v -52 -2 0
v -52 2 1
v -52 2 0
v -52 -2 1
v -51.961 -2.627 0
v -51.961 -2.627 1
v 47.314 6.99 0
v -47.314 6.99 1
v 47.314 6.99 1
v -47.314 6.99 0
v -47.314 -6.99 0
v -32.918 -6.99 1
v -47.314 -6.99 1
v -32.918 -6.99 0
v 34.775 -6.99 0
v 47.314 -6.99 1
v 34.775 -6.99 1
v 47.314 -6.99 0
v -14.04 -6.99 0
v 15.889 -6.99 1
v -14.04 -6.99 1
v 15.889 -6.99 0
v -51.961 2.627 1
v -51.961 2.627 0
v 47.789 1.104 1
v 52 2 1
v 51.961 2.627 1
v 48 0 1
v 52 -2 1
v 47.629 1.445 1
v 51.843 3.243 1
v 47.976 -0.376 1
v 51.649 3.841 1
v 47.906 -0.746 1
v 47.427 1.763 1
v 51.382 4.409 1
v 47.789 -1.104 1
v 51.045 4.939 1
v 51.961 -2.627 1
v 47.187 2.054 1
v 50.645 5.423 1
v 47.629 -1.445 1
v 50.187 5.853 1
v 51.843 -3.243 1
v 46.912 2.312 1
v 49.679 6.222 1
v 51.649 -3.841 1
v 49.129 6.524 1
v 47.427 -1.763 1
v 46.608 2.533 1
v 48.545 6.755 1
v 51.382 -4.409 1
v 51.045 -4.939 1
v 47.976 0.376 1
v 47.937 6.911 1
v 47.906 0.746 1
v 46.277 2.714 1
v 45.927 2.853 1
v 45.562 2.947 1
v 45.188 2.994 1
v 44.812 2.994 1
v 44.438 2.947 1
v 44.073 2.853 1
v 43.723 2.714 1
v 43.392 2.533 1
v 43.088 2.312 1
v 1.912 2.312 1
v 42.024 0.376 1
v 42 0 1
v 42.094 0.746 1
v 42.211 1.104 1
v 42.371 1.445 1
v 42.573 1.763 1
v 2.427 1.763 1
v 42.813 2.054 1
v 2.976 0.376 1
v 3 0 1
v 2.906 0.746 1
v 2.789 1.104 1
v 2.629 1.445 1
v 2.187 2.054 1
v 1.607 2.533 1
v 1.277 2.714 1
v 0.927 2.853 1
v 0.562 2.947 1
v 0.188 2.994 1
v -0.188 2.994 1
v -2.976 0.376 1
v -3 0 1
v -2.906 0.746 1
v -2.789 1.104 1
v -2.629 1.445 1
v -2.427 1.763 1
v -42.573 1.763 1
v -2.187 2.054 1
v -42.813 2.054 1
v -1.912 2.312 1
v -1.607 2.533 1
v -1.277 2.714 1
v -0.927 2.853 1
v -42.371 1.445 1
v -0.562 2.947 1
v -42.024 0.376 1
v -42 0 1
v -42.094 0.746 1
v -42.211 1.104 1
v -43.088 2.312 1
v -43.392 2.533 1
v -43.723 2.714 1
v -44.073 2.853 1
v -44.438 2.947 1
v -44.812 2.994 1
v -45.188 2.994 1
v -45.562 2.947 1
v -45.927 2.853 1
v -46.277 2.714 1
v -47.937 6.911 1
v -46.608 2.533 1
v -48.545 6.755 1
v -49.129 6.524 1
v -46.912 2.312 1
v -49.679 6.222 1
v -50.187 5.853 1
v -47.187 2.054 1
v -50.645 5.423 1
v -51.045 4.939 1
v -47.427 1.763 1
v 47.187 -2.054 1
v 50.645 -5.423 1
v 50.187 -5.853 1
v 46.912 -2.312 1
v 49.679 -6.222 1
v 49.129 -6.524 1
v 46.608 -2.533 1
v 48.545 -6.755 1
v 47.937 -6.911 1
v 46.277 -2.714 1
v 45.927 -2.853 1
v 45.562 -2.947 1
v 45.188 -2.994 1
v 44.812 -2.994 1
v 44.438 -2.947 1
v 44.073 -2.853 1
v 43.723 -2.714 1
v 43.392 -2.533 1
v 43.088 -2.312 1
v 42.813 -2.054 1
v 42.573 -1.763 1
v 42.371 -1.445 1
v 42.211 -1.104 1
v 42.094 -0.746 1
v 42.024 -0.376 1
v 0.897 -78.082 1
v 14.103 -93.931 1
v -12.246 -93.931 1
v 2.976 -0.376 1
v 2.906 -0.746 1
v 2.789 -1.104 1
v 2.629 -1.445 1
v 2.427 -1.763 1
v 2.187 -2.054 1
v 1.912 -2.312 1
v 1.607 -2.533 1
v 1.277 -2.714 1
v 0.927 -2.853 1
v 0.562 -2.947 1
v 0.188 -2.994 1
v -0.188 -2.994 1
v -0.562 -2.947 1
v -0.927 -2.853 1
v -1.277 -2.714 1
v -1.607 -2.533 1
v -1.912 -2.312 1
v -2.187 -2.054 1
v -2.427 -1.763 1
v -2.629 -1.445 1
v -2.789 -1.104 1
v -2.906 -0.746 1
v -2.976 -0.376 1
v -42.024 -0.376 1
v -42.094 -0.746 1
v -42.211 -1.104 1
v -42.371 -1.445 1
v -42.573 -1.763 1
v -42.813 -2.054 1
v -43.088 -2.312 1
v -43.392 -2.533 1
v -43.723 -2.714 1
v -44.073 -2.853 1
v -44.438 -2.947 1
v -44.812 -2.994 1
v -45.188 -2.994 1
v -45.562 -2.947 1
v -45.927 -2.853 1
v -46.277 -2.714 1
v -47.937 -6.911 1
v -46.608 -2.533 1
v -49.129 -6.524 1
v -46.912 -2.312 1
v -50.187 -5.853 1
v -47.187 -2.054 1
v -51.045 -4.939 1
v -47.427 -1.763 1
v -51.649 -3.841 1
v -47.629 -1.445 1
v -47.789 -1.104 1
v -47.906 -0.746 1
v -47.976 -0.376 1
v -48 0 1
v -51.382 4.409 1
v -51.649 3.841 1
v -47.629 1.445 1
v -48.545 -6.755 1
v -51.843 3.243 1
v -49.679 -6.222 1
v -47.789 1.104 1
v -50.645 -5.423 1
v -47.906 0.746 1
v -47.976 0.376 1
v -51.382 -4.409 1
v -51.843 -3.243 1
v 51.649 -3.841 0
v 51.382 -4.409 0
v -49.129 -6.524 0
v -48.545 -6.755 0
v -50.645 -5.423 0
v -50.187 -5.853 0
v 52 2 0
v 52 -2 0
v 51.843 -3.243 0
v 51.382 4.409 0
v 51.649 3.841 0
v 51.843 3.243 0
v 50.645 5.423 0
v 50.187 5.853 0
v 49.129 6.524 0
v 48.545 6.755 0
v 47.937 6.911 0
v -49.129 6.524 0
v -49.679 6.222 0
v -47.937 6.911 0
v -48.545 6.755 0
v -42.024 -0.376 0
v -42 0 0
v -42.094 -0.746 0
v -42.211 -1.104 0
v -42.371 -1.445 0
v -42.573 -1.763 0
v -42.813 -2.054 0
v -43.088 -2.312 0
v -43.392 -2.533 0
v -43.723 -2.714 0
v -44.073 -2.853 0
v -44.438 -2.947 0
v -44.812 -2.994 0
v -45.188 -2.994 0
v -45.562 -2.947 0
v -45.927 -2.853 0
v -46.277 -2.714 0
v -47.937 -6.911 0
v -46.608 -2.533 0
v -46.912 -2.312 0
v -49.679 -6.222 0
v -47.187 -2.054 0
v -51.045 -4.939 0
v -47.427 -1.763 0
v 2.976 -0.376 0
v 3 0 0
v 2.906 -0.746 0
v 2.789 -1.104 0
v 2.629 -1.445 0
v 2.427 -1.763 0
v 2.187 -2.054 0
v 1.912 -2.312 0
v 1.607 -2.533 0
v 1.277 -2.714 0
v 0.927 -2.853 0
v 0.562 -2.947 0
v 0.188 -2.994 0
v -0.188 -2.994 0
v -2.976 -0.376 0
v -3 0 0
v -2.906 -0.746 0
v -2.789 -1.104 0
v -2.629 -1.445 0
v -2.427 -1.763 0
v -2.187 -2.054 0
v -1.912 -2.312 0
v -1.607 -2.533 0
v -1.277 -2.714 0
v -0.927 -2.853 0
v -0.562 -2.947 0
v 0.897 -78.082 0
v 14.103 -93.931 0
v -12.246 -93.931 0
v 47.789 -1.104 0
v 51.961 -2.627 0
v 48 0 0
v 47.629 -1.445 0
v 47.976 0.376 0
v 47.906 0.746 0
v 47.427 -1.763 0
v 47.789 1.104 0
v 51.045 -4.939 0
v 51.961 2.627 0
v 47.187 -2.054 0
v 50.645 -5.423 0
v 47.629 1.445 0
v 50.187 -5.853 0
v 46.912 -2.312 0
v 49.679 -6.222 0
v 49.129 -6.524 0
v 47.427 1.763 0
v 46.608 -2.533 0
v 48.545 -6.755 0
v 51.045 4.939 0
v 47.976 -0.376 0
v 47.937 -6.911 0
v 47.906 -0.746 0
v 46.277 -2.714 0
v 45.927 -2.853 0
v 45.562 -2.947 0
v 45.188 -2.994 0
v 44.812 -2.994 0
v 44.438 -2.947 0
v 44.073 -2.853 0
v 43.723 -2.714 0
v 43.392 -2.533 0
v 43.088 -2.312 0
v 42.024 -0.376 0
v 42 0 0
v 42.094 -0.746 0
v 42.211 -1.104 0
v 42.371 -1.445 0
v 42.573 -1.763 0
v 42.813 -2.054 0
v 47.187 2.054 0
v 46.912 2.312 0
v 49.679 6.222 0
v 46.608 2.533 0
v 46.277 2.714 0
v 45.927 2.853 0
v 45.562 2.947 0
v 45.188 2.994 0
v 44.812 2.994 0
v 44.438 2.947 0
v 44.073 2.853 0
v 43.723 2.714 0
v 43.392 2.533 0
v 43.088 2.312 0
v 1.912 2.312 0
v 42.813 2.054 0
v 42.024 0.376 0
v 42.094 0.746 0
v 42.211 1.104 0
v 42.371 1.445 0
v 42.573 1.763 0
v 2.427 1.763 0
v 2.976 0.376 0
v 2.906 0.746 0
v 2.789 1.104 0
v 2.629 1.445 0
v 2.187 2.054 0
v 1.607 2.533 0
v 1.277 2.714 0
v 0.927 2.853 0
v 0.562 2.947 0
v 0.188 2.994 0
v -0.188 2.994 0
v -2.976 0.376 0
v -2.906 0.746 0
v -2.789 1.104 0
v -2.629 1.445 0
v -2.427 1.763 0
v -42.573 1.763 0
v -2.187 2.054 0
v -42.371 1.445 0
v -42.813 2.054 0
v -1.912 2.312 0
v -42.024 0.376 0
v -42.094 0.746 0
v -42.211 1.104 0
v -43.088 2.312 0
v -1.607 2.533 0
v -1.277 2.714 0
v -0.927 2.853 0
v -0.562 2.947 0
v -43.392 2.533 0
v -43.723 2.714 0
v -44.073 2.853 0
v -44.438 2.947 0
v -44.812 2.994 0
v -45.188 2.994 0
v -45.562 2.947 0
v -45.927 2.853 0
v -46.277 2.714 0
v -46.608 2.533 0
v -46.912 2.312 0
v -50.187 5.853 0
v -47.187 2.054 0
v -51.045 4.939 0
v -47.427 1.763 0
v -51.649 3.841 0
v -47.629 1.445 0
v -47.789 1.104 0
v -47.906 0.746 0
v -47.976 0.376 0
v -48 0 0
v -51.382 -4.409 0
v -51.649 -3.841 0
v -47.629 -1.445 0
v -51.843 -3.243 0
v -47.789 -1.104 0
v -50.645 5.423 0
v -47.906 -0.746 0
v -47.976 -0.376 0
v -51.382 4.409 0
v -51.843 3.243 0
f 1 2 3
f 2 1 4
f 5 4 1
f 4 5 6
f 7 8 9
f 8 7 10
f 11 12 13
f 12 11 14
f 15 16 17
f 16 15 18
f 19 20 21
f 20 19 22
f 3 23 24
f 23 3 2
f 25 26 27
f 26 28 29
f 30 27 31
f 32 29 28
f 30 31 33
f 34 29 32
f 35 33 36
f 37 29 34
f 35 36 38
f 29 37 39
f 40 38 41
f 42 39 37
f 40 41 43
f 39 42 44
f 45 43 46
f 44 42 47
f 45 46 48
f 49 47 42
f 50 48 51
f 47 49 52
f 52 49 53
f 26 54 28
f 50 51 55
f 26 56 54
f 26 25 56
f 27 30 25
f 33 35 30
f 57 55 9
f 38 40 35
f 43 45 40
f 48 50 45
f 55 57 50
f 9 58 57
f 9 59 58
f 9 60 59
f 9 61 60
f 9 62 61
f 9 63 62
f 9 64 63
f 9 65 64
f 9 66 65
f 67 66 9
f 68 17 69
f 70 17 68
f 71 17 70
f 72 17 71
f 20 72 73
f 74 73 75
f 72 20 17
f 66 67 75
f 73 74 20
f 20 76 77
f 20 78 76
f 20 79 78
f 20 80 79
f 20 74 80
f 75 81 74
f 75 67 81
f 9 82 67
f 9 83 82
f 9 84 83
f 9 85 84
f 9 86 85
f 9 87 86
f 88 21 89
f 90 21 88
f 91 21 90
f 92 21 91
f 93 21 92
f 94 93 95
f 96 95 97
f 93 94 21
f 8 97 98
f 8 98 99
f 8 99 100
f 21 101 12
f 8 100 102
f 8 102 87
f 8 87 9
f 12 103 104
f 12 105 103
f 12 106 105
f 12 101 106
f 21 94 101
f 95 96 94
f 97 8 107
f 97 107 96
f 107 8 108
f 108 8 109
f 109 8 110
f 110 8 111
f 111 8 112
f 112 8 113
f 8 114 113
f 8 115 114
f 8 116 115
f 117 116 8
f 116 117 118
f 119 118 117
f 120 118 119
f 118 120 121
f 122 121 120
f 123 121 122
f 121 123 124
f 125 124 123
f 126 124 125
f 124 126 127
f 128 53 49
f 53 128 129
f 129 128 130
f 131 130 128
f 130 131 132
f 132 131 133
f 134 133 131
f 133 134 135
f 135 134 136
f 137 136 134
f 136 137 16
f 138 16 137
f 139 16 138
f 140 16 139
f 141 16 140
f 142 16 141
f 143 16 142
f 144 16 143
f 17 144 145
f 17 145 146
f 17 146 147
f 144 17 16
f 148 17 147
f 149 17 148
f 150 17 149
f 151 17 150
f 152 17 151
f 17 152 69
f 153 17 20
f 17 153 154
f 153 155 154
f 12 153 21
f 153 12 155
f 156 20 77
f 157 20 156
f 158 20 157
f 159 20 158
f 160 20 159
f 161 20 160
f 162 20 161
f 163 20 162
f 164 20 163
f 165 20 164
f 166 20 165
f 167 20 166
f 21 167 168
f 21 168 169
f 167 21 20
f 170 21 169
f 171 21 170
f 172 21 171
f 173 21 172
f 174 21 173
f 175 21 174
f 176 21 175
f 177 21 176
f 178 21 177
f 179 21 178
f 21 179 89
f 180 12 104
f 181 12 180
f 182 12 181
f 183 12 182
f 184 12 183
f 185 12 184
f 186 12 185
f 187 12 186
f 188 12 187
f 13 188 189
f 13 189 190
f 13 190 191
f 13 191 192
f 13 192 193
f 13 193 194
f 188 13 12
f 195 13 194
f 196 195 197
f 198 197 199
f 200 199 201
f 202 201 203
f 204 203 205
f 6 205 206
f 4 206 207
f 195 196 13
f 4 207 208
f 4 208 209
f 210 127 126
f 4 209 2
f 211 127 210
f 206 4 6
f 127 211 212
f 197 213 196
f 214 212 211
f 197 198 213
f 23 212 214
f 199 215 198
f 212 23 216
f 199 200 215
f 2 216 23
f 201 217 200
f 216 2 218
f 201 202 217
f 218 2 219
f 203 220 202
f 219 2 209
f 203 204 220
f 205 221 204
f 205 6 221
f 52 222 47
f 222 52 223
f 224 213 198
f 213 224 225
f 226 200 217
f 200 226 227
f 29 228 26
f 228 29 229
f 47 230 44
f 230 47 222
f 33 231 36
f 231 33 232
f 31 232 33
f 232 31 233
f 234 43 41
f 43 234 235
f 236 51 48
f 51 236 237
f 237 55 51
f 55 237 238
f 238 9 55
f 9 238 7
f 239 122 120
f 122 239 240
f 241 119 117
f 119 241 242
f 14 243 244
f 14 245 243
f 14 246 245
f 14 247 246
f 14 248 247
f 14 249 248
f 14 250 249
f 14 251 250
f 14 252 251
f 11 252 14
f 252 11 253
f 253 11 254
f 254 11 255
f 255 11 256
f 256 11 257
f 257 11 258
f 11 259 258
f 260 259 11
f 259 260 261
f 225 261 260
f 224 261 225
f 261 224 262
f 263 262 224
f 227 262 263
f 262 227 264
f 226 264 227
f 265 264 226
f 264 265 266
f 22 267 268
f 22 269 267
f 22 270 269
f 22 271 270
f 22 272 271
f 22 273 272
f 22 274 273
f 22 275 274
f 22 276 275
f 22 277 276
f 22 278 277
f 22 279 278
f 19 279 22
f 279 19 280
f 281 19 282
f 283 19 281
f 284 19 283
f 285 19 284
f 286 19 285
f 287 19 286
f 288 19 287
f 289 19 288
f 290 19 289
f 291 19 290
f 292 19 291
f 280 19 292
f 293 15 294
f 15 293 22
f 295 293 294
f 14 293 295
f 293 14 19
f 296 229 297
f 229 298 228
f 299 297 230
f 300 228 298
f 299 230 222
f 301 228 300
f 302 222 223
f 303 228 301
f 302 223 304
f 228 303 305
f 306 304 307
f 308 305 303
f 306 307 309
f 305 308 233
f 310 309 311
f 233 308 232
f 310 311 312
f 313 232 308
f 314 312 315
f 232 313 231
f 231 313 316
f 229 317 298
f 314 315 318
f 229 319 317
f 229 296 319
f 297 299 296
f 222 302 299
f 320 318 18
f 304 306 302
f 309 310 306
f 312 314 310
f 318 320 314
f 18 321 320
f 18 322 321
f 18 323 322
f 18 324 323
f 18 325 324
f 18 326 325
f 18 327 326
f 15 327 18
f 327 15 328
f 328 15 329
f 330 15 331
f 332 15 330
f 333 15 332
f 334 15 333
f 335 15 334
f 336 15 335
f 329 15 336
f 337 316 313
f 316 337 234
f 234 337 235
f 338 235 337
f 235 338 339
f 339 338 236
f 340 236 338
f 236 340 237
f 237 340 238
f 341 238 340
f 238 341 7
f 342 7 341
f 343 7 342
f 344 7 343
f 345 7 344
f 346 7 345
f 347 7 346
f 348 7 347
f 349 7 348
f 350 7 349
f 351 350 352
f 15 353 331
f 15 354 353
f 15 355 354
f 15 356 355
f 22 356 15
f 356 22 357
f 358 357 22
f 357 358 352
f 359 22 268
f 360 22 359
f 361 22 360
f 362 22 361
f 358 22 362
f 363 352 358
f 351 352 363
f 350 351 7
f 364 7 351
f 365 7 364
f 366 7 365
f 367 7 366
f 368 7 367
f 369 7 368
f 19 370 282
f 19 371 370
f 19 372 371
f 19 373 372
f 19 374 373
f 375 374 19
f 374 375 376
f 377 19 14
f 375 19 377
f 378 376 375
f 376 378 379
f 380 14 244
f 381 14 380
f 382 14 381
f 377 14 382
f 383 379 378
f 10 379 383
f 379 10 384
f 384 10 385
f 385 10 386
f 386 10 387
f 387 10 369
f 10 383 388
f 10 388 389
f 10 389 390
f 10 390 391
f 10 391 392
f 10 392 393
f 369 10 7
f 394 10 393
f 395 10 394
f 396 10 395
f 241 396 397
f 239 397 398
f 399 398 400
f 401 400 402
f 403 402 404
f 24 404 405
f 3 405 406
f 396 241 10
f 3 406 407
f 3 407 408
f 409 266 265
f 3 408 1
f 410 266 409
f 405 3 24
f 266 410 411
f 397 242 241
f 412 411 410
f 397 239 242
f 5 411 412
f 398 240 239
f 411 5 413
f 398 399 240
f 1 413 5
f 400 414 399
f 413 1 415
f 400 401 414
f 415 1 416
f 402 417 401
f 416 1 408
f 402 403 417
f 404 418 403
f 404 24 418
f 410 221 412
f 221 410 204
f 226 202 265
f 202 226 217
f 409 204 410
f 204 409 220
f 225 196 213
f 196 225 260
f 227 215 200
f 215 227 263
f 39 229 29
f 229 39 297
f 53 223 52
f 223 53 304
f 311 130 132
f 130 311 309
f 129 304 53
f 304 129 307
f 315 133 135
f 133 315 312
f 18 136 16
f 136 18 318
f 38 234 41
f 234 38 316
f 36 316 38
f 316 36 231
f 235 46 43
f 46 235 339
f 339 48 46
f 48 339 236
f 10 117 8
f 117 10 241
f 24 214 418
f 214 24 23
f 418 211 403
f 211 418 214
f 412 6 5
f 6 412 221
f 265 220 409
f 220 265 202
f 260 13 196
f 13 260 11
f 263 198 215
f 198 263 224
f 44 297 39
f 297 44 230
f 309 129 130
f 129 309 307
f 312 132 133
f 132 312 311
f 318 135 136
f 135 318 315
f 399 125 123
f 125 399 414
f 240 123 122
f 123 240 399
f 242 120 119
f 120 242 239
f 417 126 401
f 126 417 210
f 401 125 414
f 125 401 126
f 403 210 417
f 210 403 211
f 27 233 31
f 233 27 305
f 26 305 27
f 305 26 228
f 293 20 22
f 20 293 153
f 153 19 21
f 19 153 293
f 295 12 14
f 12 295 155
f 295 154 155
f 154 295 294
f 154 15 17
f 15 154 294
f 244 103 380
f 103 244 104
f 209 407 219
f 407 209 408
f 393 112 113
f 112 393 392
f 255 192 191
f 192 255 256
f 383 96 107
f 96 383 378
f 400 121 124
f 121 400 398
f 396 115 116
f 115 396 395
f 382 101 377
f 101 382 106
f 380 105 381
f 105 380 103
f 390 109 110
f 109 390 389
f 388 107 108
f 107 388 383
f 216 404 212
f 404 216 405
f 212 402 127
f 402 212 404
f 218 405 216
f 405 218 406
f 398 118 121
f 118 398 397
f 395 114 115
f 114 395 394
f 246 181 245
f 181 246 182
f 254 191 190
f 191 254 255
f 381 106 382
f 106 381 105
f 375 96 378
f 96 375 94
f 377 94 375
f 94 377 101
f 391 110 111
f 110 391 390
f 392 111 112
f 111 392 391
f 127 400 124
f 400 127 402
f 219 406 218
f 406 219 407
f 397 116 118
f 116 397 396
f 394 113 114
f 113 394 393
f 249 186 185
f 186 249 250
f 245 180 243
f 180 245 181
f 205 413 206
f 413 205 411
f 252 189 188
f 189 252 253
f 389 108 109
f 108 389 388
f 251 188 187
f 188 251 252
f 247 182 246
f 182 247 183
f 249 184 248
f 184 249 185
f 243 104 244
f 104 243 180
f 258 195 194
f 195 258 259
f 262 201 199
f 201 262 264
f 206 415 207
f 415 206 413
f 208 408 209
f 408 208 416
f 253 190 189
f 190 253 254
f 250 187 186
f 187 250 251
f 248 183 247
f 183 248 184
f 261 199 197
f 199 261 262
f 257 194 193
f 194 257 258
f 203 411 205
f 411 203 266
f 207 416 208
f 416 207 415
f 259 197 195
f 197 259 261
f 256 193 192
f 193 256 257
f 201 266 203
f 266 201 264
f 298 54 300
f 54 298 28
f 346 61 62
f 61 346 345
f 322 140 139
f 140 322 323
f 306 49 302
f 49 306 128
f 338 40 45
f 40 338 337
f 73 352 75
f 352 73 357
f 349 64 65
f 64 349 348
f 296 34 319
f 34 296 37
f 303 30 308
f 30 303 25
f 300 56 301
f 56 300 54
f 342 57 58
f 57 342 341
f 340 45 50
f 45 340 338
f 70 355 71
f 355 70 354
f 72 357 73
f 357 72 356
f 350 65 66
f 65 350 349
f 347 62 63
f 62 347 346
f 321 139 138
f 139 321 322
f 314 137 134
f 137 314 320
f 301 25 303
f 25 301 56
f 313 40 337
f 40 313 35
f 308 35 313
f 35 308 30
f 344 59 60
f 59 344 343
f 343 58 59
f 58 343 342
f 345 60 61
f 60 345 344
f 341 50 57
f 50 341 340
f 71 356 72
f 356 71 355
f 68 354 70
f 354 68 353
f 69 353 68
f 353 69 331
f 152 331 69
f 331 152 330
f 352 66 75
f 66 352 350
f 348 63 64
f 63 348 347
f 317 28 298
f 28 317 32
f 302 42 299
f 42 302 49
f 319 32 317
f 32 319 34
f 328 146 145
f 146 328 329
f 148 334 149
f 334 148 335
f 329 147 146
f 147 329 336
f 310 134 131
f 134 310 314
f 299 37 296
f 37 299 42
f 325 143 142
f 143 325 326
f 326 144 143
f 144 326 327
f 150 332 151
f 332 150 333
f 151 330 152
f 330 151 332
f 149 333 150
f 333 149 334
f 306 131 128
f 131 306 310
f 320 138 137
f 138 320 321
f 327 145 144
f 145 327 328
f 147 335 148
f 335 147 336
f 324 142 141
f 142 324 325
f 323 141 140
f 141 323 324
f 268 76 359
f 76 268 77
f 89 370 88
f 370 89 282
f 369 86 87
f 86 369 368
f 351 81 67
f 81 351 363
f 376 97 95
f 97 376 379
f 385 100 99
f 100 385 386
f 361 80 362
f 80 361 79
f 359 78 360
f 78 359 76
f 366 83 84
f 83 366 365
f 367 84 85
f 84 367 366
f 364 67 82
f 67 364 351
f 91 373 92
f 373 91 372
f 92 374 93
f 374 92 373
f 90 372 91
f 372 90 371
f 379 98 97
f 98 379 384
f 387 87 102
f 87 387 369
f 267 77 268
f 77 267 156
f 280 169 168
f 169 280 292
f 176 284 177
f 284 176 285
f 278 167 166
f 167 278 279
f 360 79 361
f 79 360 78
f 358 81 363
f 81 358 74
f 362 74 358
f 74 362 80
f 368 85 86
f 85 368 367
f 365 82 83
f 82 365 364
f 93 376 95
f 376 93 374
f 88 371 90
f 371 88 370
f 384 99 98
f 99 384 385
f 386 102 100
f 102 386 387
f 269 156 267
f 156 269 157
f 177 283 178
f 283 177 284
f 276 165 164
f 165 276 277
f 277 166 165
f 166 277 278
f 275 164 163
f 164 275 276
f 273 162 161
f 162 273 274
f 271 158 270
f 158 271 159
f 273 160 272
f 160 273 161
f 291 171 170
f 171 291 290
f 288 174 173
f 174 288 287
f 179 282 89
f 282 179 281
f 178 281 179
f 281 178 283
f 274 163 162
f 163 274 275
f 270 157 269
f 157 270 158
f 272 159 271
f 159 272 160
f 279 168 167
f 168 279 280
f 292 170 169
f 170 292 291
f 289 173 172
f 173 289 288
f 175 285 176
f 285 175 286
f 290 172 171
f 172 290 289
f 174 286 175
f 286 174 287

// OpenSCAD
$fn = 50;


difference() {
	union() {
		translate(v = [0, 0, 0]) {
			rotate(a = [0, 0, 0]) {
				hull() {
					translate(v = [-47.0000000000, 2.0000000000, 0]) {
						rotate(a = [0, 0, 0]) {
							translate(v = [0, 0, 0]) {
								rotate(a = [0, 0, 0]) {
									cylinder(h = 1, r = 5);
								}
							}
						}
					}
					translate(v = [47.0000000000, 2.0000000000, 0]) {
						rotate(a = [0, 0, 0]) {
							translate(v = [0, 0, 0]) {
								rotate(a = [0, 0, 0]) {
									cylinder(h = 1, r = 5);
								}
							}
						}
					}
					translate(v = [-47.0000000000, -2.0000000000, 0]) {
						rotate(a = [0, 0, 0]) {
							translate(v = [0, 0, 0]) {
								rotate(a = [0, 0, 0]) {
									cylinder(h = 1, r = 5);
								}
							}
						}
					}
					translate(v = [47.0000000000, -2.0000000000, 0]) {
						rotate(a = [0, 0, 0]) {
							translate(v = [0, 0, 0]) {
								rotate(a = [0, 0, 0]) {
									cylinder(h = 1, r = 5);
								}
							}
						}
					}
				}
			}
		}
		translate(v = [0, 0, 0]) {
			rotate(a = [0, 0, 0]) {
				linear_extrude(height = 1) {
					text(font = "DejaVu Sans Mono:style=Bold", halign = "center", size = 95.0000000000, text = "V", valign = "top");
				}
			}
		}
	}
	union() {
		translate(v = [-45.0000000000, 0.0000000000, -125.0000000000]) {
			rotate(a = [0, 0, 0]) {
				cylinder(h = 250, r = 3.0000000000);
			}
		}
		translate(v = [45.0000000000, 0.0000000000, -125.0000000000]) {
			rotate(a = [0, 0, 0]) {
				cylinder(h = 250, r = 3.0000000000);
			}
		}
		translate(v = [45.0000000000, 0.0000000000, -125.0000000000]) {
			rotate(a = [0, 0, 0]) {
				cylinder(h = 250, r = 3.0000000000);
			}
		}
		translate(v = [0, 0, -125.0000000000]) {
			rotate(a = [0, 0, 0]) {
				cylinder(h = 250, r = 3.0000000000);
			}
		}
	}
}
